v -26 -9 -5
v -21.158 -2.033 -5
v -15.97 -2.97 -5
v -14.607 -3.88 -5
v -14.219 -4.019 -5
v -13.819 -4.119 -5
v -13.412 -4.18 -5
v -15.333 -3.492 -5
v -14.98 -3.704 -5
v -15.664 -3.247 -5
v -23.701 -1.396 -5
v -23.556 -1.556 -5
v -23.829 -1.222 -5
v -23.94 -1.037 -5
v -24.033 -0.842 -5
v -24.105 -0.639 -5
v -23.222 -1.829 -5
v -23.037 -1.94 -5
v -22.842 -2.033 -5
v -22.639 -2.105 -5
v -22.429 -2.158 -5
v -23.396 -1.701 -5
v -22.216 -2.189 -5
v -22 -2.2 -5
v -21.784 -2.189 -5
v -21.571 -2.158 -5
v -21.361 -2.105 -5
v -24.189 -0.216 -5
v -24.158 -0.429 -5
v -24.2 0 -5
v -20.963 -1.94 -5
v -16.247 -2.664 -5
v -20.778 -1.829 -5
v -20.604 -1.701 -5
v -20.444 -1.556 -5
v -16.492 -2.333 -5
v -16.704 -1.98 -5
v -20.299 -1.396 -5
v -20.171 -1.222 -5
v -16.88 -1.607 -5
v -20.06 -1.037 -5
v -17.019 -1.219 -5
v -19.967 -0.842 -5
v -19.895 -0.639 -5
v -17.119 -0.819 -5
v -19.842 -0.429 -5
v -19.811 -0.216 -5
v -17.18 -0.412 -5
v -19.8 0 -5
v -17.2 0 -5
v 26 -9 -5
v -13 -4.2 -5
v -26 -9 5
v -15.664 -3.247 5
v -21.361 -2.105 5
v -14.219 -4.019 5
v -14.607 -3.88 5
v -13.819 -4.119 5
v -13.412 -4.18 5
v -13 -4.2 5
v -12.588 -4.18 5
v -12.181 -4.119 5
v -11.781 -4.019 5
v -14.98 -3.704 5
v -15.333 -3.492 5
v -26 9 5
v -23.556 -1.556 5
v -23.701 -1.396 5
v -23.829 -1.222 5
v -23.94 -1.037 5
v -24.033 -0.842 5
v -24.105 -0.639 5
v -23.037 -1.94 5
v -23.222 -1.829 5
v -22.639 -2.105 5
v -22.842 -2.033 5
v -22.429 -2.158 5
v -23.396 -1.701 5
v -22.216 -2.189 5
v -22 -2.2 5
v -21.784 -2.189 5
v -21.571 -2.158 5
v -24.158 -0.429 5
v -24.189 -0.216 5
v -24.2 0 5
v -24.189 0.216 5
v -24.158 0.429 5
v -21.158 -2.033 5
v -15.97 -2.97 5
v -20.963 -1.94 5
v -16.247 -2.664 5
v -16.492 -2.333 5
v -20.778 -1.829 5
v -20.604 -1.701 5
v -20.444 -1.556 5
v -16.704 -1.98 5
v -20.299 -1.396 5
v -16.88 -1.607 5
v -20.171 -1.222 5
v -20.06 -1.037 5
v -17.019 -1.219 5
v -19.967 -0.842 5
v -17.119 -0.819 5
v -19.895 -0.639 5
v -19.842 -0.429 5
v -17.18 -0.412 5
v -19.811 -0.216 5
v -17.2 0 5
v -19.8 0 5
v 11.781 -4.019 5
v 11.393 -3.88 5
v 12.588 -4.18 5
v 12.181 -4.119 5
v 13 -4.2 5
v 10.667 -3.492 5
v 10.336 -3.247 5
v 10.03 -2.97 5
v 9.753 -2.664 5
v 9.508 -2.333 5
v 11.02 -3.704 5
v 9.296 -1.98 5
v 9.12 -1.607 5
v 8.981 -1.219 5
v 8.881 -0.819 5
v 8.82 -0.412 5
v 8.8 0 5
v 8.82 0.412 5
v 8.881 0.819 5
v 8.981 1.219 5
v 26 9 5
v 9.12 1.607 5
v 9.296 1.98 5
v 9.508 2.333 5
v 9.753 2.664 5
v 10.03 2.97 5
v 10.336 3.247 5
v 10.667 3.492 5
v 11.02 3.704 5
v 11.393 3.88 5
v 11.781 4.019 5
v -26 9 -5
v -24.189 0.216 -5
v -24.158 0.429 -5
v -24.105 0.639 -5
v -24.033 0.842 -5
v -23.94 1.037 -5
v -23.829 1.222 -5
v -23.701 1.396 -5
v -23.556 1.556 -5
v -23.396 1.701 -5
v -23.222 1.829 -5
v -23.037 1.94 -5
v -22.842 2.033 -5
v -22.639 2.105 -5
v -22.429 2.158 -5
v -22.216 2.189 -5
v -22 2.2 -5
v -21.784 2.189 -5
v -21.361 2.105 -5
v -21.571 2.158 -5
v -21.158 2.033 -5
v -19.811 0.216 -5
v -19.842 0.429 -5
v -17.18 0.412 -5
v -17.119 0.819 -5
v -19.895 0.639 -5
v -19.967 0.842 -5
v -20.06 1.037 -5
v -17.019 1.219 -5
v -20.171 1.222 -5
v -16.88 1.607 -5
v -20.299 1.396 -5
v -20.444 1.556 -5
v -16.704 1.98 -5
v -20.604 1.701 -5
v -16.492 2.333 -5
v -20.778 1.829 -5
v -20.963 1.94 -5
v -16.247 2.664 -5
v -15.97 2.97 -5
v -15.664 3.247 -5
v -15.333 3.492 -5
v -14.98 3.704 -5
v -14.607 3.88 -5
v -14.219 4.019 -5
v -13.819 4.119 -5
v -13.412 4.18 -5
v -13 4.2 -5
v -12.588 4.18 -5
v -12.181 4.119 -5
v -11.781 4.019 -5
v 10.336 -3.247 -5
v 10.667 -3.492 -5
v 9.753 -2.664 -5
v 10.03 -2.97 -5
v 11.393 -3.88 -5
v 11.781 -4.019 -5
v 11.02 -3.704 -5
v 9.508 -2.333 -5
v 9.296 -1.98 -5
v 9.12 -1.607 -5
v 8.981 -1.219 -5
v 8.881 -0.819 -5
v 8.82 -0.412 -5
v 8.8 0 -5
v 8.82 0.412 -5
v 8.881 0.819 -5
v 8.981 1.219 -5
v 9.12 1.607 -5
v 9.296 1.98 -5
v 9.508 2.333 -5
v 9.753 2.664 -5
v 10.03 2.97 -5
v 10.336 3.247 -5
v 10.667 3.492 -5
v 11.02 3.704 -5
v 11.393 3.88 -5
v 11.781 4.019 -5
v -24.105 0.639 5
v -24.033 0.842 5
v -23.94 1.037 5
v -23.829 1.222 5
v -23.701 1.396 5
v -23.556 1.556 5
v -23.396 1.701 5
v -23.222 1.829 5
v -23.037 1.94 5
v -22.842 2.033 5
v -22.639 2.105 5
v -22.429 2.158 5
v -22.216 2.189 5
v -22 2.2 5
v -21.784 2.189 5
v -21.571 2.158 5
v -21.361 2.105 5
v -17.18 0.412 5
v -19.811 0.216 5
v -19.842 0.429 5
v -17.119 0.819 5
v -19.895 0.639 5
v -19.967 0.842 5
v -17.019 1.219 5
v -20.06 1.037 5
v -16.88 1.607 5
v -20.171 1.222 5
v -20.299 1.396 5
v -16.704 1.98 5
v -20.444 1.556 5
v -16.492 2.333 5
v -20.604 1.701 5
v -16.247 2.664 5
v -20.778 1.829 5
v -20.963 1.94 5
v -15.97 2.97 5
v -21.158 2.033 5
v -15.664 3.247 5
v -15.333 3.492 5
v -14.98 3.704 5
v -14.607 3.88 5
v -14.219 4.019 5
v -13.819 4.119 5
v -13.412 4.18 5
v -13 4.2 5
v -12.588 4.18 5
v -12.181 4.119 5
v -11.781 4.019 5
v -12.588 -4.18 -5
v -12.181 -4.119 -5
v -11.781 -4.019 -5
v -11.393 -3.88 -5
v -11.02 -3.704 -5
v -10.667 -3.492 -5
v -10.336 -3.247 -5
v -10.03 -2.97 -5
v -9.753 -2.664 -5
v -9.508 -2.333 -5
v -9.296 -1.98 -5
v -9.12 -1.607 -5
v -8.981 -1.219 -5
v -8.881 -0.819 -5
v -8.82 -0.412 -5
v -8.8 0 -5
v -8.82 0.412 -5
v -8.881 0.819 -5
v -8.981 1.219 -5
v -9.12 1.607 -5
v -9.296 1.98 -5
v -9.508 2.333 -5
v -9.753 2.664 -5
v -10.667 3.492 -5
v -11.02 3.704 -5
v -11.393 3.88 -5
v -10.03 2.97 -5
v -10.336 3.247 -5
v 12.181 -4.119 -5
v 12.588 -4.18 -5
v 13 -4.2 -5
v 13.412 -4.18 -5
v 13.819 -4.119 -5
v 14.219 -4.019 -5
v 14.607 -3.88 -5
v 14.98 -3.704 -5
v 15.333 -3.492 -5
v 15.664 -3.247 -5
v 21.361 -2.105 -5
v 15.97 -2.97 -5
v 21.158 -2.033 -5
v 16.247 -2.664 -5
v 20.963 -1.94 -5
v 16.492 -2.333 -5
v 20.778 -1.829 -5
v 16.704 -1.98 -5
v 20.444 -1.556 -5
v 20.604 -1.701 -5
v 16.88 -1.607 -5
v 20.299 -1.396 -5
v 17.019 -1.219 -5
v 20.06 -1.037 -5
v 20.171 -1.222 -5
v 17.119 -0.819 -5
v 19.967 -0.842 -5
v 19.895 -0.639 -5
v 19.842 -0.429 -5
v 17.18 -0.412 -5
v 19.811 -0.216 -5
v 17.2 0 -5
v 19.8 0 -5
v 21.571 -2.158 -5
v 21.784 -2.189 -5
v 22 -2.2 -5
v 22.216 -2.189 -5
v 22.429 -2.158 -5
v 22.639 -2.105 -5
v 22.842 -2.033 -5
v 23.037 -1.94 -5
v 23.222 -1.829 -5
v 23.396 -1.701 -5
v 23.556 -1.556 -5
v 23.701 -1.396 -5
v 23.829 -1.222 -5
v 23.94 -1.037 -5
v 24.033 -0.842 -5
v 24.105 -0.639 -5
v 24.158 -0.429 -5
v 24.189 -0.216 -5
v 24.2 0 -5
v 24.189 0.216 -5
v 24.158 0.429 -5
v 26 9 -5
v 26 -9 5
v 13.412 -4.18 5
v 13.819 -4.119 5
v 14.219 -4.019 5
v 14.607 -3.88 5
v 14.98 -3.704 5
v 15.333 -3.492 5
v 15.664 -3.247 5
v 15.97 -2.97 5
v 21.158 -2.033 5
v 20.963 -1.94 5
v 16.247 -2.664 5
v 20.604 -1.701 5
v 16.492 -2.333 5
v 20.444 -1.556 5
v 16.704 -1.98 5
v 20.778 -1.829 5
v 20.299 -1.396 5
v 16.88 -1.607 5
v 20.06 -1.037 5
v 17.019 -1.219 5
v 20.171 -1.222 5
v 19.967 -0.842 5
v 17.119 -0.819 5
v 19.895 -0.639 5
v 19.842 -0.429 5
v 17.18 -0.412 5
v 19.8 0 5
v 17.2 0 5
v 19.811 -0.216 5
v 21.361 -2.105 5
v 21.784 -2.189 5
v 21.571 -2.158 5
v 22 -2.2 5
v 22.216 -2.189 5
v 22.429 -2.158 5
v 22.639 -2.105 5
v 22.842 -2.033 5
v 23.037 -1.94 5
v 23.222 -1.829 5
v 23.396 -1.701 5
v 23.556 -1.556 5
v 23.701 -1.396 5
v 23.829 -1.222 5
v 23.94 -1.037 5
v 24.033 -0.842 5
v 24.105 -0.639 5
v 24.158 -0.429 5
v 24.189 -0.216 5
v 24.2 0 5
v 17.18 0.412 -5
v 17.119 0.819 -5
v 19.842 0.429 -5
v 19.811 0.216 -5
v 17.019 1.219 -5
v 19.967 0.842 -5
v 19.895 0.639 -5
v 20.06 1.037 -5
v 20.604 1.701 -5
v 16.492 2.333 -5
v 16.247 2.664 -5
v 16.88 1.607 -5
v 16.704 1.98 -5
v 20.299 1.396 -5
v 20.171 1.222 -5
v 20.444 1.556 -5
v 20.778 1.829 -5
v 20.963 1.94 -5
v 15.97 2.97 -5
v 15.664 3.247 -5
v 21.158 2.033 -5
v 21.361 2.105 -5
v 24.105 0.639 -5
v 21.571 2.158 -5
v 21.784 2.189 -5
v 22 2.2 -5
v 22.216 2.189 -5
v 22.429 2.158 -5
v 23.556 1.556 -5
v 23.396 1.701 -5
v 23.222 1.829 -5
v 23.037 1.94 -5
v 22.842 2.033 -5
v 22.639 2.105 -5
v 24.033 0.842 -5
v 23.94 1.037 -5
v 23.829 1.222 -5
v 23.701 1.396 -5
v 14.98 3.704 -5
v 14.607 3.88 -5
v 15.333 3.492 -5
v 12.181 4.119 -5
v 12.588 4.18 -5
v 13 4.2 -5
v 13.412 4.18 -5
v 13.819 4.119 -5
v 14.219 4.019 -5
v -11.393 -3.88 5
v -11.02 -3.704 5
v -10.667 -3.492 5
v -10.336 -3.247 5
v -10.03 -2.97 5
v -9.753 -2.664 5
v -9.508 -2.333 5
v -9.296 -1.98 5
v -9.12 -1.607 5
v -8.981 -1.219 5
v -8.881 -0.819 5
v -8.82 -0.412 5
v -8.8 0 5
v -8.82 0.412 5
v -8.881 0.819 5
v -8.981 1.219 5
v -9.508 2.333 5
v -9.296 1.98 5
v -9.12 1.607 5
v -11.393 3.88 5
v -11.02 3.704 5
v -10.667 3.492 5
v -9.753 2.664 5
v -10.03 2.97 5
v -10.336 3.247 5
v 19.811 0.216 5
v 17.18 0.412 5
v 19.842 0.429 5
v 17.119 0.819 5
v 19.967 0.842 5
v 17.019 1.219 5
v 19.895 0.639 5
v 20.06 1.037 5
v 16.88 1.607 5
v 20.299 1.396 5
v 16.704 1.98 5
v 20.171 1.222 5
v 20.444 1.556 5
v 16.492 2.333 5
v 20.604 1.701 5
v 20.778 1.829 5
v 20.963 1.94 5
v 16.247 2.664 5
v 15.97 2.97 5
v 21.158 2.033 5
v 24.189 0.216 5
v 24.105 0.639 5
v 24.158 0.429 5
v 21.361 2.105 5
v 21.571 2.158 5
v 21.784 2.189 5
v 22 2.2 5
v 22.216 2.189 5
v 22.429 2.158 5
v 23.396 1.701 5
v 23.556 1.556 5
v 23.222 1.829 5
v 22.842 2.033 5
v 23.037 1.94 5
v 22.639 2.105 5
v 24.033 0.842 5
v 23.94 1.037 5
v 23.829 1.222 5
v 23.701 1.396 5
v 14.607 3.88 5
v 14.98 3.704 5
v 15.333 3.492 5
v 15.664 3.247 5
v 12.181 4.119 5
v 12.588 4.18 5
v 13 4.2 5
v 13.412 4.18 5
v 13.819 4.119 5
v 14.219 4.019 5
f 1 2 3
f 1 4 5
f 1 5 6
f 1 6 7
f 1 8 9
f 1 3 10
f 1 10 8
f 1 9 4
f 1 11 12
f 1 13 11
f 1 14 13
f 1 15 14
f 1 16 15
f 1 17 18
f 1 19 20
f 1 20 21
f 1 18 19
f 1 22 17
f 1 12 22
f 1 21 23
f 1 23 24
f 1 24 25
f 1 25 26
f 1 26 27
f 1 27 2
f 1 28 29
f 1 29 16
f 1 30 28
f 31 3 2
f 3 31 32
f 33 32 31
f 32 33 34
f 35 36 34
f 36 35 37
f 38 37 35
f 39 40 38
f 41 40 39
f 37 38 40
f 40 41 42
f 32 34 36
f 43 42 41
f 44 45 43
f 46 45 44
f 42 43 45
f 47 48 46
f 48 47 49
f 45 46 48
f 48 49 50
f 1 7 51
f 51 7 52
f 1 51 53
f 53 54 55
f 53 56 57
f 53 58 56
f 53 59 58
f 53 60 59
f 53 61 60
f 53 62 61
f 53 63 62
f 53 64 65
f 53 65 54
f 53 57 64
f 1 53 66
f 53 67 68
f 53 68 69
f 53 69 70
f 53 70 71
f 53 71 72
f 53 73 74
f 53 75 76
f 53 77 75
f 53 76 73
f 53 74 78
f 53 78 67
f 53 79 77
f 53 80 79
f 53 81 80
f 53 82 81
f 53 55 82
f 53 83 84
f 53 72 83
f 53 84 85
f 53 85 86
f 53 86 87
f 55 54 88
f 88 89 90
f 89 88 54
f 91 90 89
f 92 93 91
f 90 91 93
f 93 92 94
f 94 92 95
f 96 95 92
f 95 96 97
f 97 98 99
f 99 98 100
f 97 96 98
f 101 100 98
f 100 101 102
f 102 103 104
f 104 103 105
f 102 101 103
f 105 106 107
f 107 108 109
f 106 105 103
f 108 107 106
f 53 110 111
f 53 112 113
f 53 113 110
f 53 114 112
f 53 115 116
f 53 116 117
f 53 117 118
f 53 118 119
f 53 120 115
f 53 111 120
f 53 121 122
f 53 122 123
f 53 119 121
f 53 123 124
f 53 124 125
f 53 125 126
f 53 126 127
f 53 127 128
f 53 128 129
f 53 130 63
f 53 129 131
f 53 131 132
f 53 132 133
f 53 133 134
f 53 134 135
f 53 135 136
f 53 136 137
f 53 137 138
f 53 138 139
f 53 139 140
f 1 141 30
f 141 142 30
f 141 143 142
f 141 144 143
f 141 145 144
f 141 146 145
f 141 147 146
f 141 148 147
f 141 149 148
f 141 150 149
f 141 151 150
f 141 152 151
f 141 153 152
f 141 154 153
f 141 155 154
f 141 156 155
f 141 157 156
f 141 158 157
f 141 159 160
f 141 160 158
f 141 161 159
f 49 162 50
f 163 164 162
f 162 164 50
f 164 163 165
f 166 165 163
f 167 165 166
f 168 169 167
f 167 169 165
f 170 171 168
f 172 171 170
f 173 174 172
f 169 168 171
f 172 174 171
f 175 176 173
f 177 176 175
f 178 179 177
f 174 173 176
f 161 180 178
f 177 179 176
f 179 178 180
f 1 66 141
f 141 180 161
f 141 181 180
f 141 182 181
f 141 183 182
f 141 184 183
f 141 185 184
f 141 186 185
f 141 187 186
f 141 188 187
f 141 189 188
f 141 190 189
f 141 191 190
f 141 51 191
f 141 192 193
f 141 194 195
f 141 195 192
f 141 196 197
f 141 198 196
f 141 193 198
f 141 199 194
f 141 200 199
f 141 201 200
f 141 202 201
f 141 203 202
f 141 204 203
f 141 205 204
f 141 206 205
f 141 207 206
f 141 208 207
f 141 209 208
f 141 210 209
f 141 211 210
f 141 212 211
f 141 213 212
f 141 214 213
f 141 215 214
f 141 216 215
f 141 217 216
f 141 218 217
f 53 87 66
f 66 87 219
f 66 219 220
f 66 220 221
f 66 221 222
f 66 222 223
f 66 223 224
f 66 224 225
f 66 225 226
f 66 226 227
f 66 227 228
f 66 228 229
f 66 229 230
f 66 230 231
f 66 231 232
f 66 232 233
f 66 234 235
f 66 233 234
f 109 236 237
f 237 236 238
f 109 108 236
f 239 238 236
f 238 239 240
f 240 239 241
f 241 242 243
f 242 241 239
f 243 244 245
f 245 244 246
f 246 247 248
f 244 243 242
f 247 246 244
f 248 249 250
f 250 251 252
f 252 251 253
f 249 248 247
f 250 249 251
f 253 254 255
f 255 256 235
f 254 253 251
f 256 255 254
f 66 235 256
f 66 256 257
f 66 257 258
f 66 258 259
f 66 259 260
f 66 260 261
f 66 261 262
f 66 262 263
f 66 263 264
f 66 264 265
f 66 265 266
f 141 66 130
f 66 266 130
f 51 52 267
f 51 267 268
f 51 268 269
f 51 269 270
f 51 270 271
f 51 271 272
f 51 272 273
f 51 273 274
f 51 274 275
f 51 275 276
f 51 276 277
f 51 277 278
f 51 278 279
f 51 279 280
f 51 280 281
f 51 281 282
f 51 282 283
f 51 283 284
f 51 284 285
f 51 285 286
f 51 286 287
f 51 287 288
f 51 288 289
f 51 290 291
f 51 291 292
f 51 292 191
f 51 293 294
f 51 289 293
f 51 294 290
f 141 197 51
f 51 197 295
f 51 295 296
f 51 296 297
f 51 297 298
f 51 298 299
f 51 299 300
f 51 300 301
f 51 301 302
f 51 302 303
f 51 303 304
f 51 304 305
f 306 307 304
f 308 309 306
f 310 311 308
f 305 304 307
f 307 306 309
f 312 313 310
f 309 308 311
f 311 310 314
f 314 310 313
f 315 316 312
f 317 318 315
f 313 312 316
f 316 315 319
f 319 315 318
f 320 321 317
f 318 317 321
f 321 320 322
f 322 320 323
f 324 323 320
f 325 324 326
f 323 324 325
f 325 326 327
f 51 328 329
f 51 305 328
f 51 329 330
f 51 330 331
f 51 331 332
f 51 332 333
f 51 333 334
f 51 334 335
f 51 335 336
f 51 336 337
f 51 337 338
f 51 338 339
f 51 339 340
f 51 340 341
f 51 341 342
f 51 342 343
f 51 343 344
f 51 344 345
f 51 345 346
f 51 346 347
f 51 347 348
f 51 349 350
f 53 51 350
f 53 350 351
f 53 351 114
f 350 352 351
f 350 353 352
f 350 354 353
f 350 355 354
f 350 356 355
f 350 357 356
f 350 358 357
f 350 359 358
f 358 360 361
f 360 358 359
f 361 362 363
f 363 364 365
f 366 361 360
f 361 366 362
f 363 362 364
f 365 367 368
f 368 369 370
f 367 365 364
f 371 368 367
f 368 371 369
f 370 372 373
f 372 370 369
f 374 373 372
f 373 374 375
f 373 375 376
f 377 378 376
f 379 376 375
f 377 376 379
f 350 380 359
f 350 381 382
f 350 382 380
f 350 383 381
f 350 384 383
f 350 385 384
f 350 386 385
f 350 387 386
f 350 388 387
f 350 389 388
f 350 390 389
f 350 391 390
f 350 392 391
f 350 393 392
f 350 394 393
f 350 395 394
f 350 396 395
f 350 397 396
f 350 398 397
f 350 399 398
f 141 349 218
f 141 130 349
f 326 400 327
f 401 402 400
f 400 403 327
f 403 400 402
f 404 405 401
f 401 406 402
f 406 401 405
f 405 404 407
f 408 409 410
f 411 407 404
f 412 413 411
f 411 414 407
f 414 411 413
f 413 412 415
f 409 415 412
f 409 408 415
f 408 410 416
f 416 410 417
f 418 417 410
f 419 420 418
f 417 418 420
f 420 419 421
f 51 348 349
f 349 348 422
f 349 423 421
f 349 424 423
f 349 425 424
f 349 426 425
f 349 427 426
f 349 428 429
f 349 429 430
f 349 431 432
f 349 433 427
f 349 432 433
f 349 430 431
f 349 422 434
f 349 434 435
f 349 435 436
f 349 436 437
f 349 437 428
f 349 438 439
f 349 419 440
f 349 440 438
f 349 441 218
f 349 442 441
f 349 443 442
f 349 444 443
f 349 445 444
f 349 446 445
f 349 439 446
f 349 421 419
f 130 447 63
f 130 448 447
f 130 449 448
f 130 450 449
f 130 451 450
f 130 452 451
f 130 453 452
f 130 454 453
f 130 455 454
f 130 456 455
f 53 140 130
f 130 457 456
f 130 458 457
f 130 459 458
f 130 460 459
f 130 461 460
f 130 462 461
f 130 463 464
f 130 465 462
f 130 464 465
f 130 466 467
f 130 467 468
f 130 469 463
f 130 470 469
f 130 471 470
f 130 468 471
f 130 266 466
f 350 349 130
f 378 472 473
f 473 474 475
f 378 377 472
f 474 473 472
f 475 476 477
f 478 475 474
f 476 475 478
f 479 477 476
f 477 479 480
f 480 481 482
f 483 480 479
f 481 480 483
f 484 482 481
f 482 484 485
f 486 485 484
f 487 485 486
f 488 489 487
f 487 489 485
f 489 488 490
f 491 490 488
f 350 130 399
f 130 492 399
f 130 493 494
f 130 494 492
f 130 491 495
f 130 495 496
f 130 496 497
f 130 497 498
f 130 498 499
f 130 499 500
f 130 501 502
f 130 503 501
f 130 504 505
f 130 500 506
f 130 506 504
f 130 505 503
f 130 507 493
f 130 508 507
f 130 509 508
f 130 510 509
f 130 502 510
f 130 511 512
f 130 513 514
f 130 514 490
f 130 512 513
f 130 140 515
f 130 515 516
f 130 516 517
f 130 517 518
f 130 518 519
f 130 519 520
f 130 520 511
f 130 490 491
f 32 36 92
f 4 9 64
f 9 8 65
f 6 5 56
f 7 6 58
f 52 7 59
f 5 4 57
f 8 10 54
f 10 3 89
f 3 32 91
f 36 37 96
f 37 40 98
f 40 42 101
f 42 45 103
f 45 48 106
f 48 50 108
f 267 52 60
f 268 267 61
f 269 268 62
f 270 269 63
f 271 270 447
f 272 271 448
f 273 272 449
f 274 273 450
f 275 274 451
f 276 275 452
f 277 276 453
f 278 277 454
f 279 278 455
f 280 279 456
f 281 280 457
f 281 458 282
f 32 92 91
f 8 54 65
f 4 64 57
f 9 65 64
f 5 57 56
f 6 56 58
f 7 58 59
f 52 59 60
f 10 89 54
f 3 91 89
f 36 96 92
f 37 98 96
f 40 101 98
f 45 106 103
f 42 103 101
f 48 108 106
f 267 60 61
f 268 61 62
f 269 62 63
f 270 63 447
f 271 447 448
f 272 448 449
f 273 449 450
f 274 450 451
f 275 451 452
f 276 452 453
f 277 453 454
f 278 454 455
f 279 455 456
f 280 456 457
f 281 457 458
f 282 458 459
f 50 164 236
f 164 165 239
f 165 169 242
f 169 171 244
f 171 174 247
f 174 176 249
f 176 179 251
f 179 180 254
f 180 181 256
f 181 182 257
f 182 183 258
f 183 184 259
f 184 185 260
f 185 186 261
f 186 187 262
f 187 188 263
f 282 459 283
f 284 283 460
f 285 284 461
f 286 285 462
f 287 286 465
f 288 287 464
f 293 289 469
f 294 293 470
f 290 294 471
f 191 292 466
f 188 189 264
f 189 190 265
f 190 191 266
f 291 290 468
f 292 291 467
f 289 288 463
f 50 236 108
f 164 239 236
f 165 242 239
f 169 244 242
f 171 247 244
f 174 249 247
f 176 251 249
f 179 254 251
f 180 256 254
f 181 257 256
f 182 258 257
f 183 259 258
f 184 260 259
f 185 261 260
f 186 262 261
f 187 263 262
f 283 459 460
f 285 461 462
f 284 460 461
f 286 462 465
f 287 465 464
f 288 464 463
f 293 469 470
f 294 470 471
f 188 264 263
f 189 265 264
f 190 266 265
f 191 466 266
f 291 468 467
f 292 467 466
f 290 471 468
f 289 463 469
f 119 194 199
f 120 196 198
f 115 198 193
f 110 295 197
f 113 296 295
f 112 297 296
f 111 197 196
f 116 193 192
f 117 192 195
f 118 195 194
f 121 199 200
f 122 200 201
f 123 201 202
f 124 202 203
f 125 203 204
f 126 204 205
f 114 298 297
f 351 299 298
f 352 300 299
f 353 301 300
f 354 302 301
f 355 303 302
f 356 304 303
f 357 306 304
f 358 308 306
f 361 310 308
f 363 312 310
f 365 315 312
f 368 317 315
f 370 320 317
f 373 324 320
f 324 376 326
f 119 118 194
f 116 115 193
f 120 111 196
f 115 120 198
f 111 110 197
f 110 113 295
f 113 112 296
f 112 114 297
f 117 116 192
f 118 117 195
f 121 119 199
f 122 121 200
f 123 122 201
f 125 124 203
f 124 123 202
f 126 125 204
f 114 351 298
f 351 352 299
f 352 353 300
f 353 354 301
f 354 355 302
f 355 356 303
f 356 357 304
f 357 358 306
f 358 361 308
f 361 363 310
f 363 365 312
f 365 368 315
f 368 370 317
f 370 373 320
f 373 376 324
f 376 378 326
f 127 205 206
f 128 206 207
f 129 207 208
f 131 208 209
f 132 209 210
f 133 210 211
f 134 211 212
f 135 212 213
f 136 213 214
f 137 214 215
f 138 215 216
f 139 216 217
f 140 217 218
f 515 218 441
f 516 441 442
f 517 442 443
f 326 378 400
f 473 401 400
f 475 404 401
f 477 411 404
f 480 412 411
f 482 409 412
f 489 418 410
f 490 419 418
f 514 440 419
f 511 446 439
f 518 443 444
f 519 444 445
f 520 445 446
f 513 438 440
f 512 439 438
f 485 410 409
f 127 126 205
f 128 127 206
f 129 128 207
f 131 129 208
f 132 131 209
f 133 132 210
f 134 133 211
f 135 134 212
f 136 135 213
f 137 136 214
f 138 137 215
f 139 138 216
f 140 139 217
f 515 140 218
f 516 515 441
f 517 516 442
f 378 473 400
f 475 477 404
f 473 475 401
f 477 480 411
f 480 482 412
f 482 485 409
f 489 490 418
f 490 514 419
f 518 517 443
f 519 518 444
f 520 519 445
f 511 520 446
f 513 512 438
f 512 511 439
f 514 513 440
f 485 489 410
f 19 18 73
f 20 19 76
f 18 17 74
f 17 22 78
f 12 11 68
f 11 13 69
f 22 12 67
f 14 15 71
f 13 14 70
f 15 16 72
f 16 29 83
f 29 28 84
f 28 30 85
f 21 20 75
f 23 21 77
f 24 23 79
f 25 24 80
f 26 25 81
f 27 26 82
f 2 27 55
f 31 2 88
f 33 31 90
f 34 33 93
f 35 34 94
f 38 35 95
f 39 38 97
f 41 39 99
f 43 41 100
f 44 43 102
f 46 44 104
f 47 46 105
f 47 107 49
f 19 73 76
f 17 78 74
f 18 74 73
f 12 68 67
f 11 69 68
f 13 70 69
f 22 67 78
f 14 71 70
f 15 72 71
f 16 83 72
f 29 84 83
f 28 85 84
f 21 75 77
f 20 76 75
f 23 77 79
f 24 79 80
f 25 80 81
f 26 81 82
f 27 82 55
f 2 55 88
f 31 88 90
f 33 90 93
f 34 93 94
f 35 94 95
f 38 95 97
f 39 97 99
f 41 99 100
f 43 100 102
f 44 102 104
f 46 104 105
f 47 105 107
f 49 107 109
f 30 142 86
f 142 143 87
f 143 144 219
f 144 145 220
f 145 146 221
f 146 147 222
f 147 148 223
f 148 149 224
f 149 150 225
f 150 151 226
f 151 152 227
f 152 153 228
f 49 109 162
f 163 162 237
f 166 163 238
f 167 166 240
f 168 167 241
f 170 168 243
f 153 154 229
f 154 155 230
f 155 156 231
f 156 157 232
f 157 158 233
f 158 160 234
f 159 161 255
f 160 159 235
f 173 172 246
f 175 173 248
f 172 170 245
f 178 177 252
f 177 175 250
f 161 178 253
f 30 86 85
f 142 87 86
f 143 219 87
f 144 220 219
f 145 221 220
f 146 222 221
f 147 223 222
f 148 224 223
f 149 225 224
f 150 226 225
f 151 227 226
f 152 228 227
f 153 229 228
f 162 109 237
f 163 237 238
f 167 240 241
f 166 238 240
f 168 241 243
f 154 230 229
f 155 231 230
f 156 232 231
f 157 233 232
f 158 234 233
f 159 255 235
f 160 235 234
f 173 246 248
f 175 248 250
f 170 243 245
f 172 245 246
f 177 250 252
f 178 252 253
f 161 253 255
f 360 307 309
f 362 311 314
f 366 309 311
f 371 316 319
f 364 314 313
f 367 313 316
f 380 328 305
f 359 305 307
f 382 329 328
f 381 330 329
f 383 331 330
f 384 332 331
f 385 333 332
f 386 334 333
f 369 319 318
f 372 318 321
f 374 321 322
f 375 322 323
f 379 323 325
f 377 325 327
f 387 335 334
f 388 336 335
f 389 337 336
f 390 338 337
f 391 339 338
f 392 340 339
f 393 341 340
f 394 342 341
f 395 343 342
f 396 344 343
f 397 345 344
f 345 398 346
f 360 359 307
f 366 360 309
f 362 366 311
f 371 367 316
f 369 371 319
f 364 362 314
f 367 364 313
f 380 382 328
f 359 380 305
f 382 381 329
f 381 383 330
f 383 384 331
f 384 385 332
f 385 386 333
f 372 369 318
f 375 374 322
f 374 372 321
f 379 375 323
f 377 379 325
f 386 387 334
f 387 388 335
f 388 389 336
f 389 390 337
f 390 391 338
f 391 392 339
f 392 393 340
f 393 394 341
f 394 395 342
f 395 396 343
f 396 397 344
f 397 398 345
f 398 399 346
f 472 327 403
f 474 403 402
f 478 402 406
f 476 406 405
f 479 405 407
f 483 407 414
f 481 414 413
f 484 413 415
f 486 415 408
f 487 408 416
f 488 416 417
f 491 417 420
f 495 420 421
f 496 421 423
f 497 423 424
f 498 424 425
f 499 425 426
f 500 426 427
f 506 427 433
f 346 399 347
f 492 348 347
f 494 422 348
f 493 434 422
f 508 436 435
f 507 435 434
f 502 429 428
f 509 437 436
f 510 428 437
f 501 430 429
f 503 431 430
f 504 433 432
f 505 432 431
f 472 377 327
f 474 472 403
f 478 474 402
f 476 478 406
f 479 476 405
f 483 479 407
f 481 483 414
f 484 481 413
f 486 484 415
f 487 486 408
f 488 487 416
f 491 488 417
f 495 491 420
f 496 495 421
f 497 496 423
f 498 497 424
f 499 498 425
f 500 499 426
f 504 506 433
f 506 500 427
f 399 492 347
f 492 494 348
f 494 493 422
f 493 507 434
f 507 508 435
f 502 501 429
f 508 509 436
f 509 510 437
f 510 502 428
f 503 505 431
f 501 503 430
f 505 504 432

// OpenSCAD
$fn = 64;

difference() {
  cube([52, 18, 10], center = true);
  for (x = [-13, 13]) {
    translate([x, 0, 0]) cylinder(h = 16, r = 4.2, center = true);
  }
  for (x = [-22, 22]) {
    translate([x, 0, 0]) cylinder(h = 16, r = 2.2, center = true);
  }
}
